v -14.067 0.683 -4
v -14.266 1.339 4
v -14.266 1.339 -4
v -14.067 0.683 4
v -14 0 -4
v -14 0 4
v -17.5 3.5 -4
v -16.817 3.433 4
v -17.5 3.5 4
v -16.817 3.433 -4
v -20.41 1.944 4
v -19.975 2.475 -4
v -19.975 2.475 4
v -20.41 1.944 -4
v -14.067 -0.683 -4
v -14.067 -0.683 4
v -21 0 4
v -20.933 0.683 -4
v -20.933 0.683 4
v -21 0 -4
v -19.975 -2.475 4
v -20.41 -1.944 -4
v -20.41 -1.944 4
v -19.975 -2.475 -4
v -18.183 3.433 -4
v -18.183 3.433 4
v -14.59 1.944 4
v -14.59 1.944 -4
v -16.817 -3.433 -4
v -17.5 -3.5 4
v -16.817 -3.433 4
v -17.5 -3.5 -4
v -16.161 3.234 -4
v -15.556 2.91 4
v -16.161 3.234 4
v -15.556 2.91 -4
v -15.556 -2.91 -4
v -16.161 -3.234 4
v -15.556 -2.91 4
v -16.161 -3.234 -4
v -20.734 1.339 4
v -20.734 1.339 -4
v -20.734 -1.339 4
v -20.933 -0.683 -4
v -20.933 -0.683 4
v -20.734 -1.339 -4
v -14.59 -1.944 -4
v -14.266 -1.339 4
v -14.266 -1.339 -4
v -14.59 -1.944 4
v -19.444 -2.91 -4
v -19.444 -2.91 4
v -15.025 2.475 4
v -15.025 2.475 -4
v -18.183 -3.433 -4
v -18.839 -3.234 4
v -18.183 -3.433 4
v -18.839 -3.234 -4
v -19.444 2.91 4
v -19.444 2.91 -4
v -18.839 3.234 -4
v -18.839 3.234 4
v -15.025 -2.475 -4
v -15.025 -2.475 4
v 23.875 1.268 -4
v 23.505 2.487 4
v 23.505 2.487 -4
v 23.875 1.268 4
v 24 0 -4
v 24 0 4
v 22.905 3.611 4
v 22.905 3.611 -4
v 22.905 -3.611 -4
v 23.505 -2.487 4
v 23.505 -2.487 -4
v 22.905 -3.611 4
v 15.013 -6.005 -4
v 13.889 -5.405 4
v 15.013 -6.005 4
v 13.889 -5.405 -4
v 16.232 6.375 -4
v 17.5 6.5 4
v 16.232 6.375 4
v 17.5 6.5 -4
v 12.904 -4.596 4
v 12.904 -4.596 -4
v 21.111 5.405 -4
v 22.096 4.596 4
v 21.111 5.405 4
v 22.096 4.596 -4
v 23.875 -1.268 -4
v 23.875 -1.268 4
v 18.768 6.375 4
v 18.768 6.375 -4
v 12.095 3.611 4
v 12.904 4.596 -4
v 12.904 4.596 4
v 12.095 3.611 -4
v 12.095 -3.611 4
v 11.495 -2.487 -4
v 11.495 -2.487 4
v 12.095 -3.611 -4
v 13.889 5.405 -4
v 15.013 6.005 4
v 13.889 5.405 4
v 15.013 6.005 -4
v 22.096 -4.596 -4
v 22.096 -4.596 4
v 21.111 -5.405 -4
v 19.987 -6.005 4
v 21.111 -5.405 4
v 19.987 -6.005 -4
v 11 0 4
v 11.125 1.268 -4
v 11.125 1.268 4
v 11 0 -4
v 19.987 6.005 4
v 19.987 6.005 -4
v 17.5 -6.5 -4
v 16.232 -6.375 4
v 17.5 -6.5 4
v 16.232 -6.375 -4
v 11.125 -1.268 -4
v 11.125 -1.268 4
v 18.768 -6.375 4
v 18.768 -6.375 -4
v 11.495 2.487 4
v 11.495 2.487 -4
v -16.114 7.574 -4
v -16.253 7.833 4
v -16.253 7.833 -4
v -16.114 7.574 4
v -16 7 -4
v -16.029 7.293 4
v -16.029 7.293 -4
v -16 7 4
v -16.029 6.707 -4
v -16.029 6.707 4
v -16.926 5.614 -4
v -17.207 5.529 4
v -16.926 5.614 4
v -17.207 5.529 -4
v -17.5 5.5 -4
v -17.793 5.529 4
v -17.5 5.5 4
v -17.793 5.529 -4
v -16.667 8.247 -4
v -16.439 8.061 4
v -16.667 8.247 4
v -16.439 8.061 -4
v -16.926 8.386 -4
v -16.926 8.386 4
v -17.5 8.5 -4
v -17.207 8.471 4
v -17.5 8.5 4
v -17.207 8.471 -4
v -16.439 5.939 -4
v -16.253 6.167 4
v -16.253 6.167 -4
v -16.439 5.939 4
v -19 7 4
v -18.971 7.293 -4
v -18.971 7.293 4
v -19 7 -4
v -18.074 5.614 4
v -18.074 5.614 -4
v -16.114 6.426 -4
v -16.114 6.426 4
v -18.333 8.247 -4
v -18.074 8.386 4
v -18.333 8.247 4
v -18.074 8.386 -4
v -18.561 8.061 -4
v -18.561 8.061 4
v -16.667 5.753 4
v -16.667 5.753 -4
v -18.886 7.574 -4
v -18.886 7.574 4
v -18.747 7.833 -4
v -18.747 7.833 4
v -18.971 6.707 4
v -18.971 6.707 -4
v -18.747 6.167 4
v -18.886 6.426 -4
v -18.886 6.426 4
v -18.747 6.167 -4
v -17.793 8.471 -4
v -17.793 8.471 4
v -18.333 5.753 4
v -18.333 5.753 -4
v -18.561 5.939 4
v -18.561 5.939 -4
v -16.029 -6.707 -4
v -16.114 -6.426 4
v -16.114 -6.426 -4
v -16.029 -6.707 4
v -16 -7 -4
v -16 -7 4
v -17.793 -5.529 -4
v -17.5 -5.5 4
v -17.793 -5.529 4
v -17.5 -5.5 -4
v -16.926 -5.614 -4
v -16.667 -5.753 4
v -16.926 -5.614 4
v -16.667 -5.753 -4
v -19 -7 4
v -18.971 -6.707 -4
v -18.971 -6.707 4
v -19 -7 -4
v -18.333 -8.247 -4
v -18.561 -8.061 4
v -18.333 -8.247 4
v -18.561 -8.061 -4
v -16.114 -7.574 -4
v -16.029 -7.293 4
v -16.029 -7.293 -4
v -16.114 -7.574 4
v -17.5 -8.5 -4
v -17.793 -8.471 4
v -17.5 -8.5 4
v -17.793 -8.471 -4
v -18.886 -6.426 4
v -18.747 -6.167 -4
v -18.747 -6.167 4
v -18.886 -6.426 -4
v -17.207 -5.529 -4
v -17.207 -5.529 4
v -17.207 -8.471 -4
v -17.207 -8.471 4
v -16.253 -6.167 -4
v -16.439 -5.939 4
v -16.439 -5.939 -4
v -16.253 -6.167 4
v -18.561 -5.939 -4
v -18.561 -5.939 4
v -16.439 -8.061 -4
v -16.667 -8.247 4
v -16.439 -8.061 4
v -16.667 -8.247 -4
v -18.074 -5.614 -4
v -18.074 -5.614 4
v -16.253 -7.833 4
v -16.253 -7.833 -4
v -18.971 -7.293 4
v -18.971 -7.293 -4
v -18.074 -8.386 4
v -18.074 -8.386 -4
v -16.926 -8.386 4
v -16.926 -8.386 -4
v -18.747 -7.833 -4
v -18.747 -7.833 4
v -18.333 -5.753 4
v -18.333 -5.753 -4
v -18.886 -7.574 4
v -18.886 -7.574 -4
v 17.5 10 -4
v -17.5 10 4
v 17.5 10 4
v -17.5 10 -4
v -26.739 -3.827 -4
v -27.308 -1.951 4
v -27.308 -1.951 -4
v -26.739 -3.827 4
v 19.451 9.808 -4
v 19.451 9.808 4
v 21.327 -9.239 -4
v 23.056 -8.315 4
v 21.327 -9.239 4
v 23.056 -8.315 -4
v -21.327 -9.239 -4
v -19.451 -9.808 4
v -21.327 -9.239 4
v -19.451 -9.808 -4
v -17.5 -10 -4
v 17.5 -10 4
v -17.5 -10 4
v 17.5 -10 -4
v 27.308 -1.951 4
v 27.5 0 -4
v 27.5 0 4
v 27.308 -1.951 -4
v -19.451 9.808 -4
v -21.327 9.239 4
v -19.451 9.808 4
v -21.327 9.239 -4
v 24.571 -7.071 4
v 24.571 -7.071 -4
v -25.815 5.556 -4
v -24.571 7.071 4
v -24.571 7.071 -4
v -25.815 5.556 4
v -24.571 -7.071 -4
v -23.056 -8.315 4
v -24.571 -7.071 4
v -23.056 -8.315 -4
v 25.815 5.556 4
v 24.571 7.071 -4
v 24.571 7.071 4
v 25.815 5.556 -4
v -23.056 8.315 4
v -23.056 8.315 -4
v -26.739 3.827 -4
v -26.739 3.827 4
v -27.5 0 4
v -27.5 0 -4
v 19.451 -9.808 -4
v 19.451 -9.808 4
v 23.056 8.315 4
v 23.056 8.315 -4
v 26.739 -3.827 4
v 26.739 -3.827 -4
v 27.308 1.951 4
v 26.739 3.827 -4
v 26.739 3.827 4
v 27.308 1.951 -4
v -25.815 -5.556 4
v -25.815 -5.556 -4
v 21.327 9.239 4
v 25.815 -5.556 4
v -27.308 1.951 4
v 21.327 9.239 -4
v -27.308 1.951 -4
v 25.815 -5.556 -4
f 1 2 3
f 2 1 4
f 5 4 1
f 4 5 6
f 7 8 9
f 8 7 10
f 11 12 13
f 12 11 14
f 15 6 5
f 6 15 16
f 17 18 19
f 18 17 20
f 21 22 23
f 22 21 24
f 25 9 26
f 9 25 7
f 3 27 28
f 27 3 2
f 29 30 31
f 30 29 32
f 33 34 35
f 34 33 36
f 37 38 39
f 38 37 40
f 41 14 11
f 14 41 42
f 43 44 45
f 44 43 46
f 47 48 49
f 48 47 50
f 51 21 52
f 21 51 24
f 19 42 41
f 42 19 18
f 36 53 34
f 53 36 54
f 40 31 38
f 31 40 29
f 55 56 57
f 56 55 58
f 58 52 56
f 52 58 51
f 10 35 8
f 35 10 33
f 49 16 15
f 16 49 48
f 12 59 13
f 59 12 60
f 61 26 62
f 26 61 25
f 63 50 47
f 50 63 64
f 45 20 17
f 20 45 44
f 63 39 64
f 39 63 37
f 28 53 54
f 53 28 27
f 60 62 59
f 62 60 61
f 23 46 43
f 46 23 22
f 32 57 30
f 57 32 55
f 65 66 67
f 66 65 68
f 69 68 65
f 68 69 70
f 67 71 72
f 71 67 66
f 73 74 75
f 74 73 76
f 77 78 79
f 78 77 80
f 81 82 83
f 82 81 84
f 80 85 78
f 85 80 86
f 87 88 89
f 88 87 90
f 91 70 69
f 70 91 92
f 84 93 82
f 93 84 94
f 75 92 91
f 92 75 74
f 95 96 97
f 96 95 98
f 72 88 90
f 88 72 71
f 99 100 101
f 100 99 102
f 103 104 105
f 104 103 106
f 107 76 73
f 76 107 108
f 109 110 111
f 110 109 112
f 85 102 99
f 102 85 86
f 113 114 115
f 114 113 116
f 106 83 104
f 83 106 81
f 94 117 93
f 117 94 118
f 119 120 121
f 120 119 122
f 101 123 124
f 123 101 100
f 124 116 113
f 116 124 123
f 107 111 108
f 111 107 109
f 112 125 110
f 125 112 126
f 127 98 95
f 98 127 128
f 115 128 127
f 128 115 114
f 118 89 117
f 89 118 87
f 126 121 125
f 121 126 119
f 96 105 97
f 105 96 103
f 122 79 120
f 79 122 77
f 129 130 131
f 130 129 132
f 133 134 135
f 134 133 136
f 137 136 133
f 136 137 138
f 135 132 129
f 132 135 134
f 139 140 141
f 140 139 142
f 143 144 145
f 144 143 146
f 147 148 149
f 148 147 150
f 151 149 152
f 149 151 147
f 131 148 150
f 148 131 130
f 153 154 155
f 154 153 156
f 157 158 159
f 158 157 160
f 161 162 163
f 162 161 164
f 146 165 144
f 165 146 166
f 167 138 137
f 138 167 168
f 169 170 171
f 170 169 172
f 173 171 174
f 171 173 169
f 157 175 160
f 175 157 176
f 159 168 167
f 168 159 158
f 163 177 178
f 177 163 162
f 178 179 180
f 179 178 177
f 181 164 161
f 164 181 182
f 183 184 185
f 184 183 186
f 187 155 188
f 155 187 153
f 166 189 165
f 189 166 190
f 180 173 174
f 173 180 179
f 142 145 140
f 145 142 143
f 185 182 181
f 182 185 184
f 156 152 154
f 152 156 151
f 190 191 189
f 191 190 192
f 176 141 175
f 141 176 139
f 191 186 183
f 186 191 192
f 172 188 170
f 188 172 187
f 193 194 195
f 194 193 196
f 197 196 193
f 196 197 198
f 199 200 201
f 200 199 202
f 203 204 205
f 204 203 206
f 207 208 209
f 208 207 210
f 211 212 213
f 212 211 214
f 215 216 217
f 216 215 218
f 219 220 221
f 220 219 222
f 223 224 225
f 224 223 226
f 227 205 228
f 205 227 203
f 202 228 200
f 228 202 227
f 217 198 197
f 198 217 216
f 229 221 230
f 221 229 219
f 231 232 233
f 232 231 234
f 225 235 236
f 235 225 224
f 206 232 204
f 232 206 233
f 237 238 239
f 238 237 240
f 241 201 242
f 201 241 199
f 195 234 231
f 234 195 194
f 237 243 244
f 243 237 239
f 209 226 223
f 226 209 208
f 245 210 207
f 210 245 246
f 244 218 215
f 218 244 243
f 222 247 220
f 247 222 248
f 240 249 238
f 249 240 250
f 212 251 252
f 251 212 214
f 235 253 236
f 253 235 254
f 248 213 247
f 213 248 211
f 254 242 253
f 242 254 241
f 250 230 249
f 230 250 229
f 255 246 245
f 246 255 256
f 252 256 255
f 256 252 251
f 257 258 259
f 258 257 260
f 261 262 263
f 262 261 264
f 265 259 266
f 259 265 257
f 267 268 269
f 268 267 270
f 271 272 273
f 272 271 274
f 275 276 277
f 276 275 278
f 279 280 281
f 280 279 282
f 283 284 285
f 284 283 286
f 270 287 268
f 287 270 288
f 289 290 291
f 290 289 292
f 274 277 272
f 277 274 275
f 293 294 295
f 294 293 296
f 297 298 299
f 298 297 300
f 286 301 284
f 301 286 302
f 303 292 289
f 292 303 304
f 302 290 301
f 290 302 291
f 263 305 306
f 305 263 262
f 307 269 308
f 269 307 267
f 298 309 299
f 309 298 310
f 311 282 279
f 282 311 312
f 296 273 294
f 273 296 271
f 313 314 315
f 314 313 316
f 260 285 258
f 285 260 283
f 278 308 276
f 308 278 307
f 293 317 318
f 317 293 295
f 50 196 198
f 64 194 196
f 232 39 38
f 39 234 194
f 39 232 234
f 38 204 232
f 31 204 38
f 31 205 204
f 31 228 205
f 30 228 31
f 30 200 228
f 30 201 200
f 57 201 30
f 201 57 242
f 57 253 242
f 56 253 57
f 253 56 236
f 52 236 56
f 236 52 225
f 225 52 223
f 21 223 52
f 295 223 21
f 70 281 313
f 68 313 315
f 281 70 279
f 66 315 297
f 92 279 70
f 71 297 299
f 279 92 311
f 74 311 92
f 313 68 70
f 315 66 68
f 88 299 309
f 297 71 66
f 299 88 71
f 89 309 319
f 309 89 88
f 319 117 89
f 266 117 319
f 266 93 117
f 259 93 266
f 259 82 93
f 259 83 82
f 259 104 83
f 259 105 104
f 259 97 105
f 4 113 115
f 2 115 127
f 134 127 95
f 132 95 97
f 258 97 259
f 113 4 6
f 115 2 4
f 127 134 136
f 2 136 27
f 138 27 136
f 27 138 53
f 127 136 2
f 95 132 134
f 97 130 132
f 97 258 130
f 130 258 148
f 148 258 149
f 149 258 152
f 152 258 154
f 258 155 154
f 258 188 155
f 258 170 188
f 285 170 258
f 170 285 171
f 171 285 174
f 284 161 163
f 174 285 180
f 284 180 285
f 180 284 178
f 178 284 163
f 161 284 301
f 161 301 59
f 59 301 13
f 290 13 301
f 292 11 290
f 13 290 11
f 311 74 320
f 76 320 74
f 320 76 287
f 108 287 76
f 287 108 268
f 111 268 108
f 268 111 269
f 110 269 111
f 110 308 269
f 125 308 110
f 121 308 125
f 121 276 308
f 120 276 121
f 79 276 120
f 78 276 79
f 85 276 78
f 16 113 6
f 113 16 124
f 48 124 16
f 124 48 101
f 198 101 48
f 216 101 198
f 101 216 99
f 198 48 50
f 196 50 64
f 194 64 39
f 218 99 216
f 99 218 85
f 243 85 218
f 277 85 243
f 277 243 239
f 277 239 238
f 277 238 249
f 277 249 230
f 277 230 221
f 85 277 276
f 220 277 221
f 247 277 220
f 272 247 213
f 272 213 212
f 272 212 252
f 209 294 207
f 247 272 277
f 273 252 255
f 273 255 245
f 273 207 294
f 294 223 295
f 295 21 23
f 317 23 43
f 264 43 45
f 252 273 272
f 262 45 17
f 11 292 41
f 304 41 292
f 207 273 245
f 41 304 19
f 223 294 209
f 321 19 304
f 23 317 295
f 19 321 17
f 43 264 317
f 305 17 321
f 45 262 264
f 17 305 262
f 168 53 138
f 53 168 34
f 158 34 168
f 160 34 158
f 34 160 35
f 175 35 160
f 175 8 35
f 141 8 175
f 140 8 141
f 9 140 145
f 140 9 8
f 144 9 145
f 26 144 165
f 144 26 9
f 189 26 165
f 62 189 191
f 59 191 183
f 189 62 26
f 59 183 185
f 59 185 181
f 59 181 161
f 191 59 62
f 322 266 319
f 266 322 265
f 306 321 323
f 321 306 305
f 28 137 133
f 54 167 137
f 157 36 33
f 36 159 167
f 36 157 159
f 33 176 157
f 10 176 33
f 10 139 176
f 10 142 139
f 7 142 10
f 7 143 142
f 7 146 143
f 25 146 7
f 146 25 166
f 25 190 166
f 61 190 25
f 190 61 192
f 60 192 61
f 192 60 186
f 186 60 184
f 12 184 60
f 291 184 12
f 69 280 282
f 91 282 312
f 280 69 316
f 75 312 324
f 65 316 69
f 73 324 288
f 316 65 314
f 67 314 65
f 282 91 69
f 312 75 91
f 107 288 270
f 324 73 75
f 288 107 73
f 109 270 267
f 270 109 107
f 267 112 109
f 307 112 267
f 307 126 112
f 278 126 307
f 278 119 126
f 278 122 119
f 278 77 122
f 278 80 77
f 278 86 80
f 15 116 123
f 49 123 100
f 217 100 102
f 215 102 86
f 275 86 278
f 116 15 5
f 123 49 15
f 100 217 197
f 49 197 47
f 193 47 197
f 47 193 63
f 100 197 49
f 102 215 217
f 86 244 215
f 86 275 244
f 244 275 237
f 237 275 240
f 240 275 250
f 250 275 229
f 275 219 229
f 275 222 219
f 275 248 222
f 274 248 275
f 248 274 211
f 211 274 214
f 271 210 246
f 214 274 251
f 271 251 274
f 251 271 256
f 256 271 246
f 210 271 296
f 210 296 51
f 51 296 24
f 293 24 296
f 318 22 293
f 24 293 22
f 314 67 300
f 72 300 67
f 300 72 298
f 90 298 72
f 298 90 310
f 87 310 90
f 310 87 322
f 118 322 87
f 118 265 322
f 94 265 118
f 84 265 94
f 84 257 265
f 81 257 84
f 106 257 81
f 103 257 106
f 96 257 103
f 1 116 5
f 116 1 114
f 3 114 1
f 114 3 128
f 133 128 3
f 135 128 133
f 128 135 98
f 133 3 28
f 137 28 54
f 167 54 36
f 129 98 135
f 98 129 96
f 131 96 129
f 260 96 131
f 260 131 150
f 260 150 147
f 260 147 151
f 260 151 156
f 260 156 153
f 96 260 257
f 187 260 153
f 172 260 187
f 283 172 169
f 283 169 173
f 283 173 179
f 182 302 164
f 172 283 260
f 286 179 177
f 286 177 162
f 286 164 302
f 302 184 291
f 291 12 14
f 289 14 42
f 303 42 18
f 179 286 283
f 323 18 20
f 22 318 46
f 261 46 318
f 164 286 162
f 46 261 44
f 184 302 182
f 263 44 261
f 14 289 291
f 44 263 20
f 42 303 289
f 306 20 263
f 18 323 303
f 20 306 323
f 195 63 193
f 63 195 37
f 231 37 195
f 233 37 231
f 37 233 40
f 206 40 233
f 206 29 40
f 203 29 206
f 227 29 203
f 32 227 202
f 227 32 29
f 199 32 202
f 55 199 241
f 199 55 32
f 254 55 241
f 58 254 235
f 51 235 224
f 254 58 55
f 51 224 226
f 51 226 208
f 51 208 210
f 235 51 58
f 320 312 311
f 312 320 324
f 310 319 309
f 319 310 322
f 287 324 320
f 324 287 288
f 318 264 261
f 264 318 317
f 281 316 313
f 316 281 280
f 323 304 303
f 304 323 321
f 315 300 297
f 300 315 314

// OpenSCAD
upper_len=35;
leg_w=20;
leg_t=8;
horn_d=7;
knee_d=13;
mtg_d=3;
$fn=32;
difference(){
 hull(){
  translate([-upper_len/2,0,0]) cylinder(d=leg_w, h=leg_t, center=true);
  translate([upper_len/2,0,0]) cylinder(d=leg_w, h=leg_t, center=true);
 }
 union(){
  translate([-upper_len/2,0,0]) cylinder(d=horn_d, h=leg_t+2, center=true);
  translate([upper_len/2,0,0]) cylinder(d=knee_d, h=leg_t+2, center=true);
  translate([-upper_len/2,0,0]) translate([0,7,0]) cylinder(d=mtg_d, h=leg_t+2, center=true);
  translate([-upper_len/2,0,0]) translate([0,-7,0]) cylinder(d=mtg_d, h=leg_t+2, center=true);
 }
}
